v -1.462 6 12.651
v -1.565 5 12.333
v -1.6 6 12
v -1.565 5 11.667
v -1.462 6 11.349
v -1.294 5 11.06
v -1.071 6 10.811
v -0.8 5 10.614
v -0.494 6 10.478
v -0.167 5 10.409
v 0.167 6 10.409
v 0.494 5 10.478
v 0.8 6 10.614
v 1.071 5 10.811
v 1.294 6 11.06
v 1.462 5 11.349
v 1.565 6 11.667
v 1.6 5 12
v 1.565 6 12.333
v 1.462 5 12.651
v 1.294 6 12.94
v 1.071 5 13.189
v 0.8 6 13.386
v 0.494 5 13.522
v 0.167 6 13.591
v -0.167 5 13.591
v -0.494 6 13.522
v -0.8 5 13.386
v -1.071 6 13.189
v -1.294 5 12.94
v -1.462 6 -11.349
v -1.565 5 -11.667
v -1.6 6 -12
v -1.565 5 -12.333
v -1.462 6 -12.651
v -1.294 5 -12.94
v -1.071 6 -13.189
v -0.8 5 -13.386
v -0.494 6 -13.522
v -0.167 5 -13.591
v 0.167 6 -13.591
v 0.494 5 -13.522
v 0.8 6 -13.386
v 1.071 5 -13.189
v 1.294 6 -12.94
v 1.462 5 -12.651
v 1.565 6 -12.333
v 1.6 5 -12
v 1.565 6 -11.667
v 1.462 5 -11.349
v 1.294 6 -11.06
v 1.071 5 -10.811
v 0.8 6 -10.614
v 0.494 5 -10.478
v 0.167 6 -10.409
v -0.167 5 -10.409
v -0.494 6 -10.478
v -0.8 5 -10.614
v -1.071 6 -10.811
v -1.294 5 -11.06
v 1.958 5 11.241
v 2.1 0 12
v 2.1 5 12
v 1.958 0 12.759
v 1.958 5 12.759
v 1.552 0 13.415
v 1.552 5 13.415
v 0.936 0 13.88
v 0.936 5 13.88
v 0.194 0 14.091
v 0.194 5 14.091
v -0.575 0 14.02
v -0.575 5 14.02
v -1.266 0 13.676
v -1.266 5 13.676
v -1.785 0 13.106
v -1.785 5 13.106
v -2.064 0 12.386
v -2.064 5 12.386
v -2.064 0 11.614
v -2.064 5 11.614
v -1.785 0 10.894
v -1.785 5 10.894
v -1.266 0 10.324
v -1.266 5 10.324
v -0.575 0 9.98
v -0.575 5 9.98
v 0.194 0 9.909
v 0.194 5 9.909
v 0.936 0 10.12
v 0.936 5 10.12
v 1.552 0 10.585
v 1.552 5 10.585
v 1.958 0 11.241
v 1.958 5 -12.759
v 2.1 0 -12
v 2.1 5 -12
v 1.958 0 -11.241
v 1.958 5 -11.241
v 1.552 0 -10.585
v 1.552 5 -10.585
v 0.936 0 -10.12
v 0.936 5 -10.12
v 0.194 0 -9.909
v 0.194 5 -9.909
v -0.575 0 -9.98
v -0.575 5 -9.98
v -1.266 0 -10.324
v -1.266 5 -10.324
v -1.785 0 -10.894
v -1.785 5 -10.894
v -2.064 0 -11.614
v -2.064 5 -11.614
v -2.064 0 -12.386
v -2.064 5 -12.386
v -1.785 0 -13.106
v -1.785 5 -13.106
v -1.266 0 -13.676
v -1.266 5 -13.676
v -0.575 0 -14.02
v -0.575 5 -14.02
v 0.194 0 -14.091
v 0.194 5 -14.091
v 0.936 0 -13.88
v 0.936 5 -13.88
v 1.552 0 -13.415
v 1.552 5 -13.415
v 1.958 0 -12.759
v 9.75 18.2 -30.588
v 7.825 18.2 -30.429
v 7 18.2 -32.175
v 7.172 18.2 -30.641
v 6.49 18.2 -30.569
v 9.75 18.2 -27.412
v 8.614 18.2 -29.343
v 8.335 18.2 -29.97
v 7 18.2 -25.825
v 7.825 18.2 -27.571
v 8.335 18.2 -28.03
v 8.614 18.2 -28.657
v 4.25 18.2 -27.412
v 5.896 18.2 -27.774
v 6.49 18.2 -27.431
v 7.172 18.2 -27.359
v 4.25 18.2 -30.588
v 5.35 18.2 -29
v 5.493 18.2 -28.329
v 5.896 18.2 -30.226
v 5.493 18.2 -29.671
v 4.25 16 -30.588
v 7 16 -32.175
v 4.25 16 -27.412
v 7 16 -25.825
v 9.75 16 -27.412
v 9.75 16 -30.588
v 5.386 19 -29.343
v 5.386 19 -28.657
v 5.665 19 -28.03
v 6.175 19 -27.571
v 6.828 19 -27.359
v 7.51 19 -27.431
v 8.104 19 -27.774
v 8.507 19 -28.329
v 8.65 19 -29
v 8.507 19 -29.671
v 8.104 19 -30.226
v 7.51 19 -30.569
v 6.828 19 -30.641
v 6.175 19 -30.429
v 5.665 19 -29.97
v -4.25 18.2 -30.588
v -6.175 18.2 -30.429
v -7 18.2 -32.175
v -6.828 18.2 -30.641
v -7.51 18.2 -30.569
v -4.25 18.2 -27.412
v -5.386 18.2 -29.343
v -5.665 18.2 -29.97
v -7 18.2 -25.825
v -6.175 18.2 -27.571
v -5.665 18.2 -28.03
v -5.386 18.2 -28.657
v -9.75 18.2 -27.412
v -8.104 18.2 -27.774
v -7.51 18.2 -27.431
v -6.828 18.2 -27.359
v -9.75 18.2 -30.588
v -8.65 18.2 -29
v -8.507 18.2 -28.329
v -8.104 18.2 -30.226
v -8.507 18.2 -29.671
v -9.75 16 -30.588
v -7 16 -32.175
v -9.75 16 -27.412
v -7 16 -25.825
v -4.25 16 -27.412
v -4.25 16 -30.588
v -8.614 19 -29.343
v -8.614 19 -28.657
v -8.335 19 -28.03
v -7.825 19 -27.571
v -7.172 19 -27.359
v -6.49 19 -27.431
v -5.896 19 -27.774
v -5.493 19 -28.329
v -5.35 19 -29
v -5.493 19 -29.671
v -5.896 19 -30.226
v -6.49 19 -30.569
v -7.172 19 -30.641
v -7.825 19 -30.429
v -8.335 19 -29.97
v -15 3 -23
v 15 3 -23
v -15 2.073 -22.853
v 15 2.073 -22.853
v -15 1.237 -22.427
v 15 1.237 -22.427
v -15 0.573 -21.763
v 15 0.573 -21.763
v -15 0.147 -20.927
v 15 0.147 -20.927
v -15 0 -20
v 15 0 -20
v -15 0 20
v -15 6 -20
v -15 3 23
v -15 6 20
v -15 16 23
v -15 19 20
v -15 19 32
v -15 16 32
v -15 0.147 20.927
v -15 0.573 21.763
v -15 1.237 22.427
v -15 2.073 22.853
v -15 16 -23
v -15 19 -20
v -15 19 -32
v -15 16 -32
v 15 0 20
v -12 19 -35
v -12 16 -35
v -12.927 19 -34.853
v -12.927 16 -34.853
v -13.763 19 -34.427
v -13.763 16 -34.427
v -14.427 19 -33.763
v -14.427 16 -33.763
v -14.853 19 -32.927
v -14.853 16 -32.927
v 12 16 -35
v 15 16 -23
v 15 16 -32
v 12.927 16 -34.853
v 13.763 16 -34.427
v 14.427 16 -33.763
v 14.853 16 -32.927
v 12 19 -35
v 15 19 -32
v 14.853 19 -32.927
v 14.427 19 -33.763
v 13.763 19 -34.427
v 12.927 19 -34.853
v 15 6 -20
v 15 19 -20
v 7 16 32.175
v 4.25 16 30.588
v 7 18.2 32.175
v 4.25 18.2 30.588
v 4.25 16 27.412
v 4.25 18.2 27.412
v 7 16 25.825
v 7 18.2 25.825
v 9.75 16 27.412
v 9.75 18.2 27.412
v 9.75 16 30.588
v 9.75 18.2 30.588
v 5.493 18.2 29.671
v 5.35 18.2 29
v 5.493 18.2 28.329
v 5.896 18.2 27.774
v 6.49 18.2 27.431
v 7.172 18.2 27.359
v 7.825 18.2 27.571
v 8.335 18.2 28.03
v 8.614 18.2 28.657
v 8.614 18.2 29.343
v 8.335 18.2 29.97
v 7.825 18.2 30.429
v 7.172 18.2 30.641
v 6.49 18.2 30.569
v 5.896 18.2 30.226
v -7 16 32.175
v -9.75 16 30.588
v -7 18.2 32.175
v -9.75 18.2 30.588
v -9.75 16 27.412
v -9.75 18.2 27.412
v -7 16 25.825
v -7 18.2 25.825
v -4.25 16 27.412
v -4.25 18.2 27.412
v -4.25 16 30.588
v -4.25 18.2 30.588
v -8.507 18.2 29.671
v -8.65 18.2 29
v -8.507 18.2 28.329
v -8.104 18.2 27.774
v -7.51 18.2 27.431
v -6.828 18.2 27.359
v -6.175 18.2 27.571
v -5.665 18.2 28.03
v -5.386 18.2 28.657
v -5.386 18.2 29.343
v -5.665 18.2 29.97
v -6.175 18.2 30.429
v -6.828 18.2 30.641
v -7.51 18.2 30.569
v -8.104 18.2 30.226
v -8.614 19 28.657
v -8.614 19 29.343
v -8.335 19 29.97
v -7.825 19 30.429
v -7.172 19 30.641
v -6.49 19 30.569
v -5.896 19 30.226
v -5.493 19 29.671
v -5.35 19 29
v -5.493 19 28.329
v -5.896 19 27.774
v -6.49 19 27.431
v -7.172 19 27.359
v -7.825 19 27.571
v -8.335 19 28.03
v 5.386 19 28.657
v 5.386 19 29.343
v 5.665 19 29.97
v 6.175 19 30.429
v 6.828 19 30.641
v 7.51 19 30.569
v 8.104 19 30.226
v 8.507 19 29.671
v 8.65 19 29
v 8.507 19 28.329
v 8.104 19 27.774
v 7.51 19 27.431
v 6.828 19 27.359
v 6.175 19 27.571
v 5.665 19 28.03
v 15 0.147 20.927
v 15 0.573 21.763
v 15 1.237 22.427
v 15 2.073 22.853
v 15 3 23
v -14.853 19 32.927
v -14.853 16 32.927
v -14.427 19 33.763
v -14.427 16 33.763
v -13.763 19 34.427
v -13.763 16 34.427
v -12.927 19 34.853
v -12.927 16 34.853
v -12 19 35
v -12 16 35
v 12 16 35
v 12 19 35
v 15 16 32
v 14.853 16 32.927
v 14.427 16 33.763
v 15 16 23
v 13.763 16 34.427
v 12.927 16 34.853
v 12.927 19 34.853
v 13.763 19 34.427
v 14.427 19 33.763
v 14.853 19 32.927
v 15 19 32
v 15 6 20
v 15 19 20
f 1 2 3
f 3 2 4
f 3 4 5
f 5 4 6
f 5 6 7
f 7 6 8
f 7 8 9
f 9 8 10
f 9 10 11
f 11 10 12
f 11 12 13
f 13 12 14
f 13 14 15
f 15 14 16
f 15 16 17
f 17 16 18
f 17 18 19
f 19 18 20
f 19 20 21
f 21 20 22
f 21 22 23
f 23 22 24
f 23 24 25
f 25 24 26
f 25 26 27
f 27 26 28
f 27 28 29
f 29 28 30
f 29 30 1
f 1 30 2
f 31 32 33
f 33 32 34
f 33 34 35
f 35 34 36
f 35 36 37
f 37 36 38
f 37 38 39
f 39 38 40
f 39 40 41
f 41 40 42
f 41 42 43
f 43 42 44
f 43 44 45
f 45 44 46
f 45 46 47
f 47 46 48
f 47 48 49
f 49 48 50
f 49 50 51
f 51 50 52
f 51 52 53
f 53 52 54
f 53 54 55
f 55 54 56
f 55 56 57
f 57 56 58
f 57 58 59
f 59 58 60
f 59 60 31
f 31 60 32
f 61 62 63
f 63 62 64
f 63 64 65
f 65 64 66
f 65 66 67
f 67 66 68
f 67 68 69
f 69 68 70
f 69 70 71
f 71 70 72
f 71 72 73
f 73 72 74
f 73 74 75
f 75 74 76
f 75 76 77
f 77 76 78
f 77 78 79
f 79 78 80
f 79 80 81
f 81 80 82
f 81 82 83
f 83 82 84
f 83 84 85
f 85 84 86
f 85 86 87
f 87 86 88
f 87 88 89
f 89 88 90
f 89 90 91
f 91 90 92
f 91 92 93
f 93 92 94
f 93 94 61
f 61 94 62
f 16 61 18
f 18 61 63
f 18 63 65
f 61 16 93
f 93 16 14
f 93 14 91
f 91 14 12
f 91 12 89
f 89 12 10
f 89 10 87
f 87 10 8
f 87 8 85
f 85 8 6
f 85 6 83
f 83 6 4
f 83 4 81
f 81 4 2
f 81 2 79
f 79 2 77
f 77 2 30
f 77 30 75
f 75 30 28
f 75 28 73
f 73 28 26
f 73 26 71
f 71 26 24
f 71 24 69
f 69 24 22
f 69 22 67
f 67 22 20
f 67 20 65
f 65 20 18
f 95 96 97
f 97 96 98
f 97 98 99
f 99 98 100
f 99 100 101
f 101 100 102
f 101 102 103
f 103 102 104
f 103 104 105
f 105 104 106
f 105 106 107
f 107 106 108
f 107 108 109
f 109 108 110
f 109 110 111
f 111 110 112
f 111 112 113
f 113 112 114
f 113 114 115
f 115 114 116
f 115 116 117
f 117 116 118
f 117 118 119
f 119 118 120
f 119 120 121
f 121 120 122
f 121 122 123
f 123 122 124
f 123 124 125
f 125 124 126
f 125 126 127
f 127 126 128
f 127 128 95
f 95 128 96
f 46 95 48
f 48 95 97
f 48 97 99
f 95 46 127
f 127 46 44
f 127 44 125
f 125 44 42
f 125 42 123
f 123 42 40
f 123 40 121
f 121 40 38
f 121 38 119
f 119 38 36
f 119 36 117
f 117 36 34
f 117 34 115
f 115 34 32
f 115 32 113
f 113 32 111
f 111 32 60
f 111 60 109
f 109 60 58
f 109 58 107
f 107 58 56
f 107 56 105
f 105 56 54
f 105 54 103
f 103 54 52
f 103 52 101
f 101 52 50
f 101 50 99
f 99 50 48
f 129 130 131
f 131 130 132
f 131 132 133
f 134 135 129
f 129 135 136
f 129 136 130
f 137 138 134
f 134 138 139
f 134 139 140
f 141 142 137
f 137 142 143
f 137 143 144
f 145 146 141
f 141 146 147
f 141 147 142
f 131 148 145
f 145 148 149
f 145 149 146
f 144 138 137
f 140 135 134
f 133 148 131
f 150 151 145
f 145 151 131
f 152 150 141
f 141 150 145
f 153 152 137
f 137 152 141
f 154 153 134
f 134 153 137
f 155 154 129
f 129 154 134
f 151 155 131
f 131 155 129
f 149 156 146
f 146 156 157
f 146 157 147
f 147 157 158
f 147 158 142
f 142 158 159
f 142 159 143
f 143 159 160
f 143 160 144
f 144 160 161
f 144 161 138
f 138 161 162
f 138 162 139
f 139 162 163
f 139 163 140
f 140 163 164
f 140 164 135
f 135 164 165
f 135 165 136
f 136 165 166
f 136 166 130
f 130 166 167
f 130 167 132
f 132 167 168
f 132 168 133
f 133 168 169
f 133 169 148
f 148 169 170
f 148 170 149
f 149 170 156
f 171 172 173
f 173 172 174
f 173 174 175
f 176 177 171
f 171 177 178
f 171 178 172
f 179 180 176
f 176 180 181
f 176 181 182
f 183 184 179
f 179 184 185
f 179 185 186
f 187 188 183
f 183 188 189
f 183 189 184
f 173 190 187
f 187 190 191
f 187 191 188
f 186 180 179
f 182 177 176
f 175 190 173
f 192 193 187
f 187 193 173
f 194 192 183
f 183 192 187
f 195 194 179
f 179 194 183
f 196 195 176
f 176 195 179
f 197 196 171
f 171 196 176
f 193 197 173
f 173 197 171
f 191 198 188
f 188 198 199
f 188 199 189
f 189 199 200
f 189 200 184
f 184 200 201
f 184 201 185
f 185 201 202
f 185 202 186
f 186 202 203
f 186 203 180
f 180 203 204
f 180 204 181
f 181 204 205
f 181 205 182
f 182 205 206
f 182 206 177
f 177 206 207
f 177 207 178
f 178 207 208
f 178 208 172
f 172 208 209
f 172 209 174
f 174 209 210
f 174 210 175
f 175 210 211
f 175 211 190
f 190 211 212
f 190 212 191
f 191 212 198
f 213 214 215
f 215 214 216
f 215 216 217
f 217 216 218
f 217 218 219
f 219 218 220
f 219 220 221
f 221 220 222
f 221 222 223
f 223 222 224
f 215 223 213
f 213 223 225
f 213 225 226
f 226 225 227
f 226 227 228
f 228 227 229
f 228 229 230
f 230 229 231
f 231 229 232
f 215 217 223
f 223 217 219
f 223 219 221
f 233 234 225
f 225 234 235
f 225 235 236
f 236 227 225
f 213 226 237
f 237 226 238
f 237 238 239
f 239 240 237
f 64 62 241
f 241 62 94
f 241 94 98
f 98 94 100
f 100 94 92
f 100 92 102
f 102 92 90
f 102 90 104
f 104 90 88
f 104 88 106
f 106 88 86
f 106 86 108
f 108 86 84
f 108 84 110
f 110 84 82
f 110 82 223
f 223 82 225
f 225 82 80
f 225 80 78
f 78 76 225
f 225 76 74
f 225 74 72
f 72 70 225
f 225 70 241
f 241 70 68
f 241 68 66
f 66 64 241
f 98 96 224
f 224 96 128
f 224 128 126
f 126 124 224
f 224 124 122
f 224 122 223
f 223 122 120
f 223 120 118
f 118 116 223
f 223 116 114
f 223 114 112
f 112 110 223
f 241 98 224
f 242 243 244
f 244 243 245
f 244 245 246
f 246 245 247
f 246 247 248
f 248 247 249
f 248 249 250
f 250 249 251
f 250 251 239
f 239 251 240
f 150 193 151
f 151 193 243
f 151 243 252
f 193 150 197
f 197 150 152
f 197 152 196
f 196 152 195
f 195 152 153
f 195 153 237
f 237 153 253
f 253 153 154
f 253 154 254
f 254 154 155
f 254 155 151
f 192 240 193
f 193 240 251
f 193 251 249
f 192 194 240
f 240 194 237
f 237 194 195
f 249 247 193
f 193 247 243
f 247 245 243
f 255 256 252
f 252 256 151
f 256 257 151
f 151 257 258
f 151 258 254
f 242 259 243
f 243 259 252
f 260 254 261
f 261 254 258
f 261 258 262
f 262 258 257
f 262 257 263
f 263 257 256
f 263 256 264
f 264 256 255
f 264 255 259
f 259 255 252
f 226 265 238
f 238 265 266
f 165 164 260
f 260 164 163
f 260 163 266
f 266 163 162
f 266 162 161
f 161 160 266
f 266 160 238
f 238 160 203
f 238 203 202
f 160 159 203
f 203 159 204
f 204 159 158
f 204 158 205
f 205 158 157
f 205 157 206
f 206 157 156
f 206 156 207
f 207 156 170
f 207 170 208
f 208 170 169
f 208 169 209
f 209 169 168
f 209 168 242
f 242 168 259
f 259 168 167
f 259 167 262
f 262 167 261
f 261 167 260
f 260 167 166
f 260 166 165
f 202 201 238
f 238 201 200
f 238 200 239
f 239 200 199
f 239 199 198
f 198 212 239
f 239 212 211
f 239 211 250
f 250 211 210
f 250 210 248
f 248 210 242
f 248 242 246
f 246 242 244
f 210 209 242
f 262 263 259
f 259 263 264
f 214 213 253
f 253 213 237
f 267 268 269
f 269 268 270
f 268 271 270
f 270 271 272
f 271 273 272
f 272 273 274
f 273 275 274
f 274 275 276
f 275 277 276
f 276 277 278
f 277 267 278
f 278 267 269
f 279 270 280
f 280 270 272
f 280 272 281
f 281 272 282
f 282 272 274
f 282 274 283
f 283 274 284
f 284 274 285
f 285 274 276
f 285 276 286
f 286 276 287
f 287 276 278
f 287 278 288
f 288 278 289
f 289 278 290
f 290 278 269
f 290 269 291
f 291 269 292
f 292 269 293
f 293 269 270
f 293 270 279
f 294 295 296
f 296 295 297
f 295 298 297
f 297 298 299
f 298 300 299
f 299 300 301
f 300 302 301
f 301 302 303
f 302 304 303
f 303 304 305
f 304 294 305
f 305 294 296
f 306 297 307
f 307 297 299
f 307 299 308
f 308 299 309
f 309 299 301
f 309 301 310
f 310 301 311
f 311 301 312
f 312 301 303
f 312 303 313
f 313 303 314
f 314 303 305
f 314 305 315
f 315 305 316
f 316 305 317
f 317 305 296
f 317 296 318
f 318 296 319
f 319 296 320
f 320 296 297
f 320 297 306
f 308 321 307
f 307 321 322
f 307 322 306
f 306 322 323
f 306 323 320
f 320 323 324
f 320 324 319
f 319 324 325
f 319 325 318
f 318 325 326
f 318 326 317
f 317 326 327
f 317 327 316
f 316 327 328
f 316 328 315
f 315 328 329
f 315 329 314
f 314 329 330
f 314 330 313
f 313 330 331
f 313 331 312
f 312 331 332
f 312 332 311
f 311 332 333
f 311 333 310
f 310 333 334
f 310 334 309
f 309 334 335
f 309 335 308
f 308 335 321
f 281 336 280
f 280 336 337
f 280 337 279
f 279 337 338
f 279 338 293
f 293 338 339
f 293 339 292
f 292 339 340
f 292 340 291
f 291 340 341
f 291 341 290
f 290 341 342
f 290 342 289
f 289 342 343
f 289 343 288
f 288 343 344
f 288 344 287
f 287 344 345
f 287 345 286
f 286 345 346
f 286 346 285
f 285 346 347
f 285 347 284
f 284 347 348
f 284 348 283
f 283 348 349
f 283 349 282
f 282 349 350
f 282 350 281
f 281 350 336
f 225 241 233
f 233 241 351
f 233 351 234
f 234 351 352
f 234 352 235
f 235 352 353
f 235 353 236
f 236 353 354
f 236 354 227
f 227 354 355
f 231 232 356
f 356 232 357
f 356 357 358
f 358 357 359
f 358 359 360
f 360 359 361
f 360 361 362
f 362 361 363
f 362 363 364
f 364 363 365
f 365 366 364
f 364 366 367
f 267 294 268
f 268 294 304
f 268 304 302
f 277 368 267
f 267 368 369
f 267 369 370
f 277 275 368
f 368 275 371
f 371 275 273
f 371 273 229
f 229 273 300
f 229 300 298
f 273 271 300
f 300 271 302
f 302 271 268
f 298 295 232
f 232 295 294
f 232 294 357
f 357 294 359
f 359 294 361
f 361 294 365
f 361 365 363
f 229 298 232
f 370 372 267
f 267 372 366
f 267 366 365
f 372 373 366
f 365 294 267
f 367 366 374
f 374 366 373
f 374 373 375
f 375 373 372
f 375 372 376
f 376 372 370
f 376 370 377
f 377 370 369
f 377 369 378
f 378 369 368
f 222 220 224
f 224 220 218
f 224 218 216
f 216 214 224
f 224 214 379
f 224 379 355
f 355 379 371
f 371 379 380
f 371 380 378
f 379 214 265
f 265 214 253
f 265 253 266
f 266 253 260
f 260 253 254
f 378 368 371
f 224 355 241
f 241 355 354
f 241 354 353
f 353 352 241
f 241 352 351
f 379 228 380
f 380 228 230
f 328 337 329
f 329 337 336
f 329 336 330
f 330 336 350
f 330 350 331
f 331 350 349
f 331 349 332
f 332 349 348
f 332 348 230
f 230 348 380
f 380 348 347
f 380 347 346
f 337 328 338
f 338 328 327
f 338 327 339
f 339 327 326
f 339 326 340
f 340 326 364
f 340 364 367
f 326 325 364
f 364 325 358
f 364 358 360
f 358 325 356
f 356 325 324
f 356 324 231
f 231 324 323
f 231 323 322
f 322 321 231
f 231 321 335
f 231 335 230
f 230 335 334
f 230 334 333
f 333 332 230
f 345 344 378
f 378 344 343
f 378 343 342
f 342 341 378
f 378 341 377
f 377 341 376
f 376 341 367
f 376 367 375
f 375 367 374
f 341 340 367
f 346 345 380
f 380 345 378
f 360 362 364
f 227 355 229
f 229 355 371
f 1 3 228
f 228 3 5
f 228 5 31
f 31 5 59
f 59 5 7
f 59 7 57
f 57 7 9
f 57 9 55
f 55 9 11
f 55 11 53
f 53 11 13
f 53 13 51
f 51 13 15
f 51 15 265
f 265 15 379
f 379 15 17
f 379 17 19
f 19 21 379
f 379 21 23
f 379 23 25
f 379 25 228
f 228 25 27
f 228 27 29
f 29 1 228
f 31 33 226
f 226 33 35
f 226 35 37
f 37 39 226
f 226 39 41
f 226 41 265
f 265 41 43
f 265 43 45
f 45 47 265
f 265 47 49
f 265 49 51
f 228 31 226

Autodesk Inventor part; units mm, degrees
ref_plane "YZ Plane" through (0, 0, 0) normal (1, 0, 0) x (0, 1, 0)
ref_plane "XZ Plane" through (0, 0, 0) normal (0, 1, 0) x (-1, 0, 0)
ref_plane "XY Plane" through (0, 0, 0) normal (0, 0, 1) x (1, 0, 0)
sketch "Эскиз1" plane through (0, 0, 0) normal (0, 1, 0) x (-1, 0, 0)
  line L0 (-15, 20) -> (15, 20)
  line L1 (15, 20) -> (15, -20)
  line L2 (15, -20) -> (-15, -20)
  line L3 (-15, -20) -> (-15, 20)
  line L4 (-15, 20) -> (15, -20) construction
  line L5 (15, 20) -> (-15, -20) construction
  point P0 (0, 0)
  dimension "d0" = 40
  dimension "d1" = 30
extrude "Выдавливание1" add sketch "Эскиз1" along normal blind 6
sketch "Эскиз2" plane through (-15, 0, 20) normal (0, 0, 1) x (1, 0, 0)
  line L0 (30, 0) -> (0, 0) projected
  line L1 (0, 0) -> (30, 0)
  line L2 (30, 0) -> (30, 19)
  line L3 (30, 19) -> (0, 19)
  line L4 (0, 19) -> (0, 0)
  line L5 (0, 6) -> (30, 6) projected
  point P0 (15, 0)
  dimension "d4" = 13
extrude "Выдавливание2" add sketch "Эскиз2" along normal blind 3
sketch "Эскиз4" plane through (-15, 19, 20) normal (0, 1, 0) x (1, 0, 0)
  line L0 (0, 40) -> (0, 0) projected
  line L1 (0, 0) -> (30, 0)
  line L2 (30, 0) -> (30, -15)
  line L3 (30, -15) -> (0, -15)
  line L4 (0, -15) -> (0, 0)
  point P0 (15, 20)
  point P1 (30, 0)
  dimension "d7" = 15
extrude "Выдавливание3" add sketch "Эскиз4" against normal blind 3
fillet "Сопряжение1" radius 3 3 edges at (15, 17.5, 35) (-15, 17.5, 35) (0, 0, 23)
sketch "Эскиз5" plane through (-15, 19, 20) normal (0, 1, 0) x (1, 0, 0)
  circle A0 centre (8, -9) radius 1.65
  circle A1 centre (22, -9) radius 1.65
  line L0 (0, 0) -> (0, -12) projected
  line L1 (30, -3) -> (30, -12) projected
  line L2 (30, 0) -> (0, 0) projected
  point P0 (15, 20)
  dimension "d11" = 3.3
  dimension "d12" = 3.3
  dimension "d13" = 8
  dimension "d14" = 8
  dimension "d15" = 9
  dimension "d16" = 9
extrude "Выдавливание4" cut sketch "Эскиз5" against normal blind 3
sketch "Эскиз6" plane through (-15, 16, 20) normal (0, -1, 0) x (1, 0, 0)
  circle A0 centre (22, 9) radius 1.65 construction
  circle A1 centre (8, 9) radius 1.65 construction
  line L0 (24.75, 7.4123) -> (22, 5.8246)
  line L1 (22, 5.8246) -> (19.25, 7.4123)
  line L2 (19.25, 7.4123) -> (19.25, 10.5877)
  line L3 (19.25, 10.5877) -> (22, 12.1754)
  line L4 (22, 12.1754) -> (24.75, 10.5877)
  line L5 (24.75, 10.5877) -> (24.75, 7.4123)
  line L6 (10.75, 7.4123) -> (8, 5.8246)
  line L7 (8, 5.8246) -> (5.25, 7.4123)
  line L8 (5.25, 7.4123) -> (5.25, 10.5877)
  line L9 (5.25, 10.5877) -> (8, 12.1754)
  line L10 (8, 12.1754) -> (10.75, 10.5877)
  line L11 (10.75, 10.5877) -> (10.75, 7.4123)
  line L12 (0, 12) -> (0, 3) projected
  line L13 (30, 3) -> (30, 12) projected
  point P0 (15, -20)
  point P1 (19.25, 9)
  dimension "d19" = 5.5
  dimension "d20" = 5.5
extrude "Выдавливание5" cut sketch "Эскиз6" against normal blind 2.2
mirror "Зеркальное отражение1" about plane through (0, 0, 0) normal (0, 0, 1) of "Выдавливание2", "Сопряжение1", "Выдавливание5", "Выдавливание4", "Выдавливание3"
sketch "Эскиз7" plane through (0, 0, 0) normal (0, -1, 0) x (1, 0, 0)
  circle A0 centre (0, 12) radius 2.1
  circle A1 centre (0, -12) radius 2.1
  point P0 (0, 0)
  dimension "d23" = 4.2
  dimension "d24" = 4.2
  dimension "d25" = 12
  dimension "d26" = 12
extrude "Выдавливание6" cut sketch "Эскиз7" against normal blind 5
sketch "Эскиз8" plane through (0, 5, 12) normal (0, -1, 0) x (1, 0, 0)
  circle A0 centre (0, 0) radius 1.6
  circle A1 centre (0, -24) radius 2.1 projected
  circle A2 centre (0, -24) radius 1.6
  point P0 (0, -12)
  dimension "d29" = 3.2
  dimension "d30" = 3.2
extrude "Выдавливание7" cut sketch "Эскиз8" against normal blind 6 contours A0 | A2
properties part number "креп_камеры_ros"
